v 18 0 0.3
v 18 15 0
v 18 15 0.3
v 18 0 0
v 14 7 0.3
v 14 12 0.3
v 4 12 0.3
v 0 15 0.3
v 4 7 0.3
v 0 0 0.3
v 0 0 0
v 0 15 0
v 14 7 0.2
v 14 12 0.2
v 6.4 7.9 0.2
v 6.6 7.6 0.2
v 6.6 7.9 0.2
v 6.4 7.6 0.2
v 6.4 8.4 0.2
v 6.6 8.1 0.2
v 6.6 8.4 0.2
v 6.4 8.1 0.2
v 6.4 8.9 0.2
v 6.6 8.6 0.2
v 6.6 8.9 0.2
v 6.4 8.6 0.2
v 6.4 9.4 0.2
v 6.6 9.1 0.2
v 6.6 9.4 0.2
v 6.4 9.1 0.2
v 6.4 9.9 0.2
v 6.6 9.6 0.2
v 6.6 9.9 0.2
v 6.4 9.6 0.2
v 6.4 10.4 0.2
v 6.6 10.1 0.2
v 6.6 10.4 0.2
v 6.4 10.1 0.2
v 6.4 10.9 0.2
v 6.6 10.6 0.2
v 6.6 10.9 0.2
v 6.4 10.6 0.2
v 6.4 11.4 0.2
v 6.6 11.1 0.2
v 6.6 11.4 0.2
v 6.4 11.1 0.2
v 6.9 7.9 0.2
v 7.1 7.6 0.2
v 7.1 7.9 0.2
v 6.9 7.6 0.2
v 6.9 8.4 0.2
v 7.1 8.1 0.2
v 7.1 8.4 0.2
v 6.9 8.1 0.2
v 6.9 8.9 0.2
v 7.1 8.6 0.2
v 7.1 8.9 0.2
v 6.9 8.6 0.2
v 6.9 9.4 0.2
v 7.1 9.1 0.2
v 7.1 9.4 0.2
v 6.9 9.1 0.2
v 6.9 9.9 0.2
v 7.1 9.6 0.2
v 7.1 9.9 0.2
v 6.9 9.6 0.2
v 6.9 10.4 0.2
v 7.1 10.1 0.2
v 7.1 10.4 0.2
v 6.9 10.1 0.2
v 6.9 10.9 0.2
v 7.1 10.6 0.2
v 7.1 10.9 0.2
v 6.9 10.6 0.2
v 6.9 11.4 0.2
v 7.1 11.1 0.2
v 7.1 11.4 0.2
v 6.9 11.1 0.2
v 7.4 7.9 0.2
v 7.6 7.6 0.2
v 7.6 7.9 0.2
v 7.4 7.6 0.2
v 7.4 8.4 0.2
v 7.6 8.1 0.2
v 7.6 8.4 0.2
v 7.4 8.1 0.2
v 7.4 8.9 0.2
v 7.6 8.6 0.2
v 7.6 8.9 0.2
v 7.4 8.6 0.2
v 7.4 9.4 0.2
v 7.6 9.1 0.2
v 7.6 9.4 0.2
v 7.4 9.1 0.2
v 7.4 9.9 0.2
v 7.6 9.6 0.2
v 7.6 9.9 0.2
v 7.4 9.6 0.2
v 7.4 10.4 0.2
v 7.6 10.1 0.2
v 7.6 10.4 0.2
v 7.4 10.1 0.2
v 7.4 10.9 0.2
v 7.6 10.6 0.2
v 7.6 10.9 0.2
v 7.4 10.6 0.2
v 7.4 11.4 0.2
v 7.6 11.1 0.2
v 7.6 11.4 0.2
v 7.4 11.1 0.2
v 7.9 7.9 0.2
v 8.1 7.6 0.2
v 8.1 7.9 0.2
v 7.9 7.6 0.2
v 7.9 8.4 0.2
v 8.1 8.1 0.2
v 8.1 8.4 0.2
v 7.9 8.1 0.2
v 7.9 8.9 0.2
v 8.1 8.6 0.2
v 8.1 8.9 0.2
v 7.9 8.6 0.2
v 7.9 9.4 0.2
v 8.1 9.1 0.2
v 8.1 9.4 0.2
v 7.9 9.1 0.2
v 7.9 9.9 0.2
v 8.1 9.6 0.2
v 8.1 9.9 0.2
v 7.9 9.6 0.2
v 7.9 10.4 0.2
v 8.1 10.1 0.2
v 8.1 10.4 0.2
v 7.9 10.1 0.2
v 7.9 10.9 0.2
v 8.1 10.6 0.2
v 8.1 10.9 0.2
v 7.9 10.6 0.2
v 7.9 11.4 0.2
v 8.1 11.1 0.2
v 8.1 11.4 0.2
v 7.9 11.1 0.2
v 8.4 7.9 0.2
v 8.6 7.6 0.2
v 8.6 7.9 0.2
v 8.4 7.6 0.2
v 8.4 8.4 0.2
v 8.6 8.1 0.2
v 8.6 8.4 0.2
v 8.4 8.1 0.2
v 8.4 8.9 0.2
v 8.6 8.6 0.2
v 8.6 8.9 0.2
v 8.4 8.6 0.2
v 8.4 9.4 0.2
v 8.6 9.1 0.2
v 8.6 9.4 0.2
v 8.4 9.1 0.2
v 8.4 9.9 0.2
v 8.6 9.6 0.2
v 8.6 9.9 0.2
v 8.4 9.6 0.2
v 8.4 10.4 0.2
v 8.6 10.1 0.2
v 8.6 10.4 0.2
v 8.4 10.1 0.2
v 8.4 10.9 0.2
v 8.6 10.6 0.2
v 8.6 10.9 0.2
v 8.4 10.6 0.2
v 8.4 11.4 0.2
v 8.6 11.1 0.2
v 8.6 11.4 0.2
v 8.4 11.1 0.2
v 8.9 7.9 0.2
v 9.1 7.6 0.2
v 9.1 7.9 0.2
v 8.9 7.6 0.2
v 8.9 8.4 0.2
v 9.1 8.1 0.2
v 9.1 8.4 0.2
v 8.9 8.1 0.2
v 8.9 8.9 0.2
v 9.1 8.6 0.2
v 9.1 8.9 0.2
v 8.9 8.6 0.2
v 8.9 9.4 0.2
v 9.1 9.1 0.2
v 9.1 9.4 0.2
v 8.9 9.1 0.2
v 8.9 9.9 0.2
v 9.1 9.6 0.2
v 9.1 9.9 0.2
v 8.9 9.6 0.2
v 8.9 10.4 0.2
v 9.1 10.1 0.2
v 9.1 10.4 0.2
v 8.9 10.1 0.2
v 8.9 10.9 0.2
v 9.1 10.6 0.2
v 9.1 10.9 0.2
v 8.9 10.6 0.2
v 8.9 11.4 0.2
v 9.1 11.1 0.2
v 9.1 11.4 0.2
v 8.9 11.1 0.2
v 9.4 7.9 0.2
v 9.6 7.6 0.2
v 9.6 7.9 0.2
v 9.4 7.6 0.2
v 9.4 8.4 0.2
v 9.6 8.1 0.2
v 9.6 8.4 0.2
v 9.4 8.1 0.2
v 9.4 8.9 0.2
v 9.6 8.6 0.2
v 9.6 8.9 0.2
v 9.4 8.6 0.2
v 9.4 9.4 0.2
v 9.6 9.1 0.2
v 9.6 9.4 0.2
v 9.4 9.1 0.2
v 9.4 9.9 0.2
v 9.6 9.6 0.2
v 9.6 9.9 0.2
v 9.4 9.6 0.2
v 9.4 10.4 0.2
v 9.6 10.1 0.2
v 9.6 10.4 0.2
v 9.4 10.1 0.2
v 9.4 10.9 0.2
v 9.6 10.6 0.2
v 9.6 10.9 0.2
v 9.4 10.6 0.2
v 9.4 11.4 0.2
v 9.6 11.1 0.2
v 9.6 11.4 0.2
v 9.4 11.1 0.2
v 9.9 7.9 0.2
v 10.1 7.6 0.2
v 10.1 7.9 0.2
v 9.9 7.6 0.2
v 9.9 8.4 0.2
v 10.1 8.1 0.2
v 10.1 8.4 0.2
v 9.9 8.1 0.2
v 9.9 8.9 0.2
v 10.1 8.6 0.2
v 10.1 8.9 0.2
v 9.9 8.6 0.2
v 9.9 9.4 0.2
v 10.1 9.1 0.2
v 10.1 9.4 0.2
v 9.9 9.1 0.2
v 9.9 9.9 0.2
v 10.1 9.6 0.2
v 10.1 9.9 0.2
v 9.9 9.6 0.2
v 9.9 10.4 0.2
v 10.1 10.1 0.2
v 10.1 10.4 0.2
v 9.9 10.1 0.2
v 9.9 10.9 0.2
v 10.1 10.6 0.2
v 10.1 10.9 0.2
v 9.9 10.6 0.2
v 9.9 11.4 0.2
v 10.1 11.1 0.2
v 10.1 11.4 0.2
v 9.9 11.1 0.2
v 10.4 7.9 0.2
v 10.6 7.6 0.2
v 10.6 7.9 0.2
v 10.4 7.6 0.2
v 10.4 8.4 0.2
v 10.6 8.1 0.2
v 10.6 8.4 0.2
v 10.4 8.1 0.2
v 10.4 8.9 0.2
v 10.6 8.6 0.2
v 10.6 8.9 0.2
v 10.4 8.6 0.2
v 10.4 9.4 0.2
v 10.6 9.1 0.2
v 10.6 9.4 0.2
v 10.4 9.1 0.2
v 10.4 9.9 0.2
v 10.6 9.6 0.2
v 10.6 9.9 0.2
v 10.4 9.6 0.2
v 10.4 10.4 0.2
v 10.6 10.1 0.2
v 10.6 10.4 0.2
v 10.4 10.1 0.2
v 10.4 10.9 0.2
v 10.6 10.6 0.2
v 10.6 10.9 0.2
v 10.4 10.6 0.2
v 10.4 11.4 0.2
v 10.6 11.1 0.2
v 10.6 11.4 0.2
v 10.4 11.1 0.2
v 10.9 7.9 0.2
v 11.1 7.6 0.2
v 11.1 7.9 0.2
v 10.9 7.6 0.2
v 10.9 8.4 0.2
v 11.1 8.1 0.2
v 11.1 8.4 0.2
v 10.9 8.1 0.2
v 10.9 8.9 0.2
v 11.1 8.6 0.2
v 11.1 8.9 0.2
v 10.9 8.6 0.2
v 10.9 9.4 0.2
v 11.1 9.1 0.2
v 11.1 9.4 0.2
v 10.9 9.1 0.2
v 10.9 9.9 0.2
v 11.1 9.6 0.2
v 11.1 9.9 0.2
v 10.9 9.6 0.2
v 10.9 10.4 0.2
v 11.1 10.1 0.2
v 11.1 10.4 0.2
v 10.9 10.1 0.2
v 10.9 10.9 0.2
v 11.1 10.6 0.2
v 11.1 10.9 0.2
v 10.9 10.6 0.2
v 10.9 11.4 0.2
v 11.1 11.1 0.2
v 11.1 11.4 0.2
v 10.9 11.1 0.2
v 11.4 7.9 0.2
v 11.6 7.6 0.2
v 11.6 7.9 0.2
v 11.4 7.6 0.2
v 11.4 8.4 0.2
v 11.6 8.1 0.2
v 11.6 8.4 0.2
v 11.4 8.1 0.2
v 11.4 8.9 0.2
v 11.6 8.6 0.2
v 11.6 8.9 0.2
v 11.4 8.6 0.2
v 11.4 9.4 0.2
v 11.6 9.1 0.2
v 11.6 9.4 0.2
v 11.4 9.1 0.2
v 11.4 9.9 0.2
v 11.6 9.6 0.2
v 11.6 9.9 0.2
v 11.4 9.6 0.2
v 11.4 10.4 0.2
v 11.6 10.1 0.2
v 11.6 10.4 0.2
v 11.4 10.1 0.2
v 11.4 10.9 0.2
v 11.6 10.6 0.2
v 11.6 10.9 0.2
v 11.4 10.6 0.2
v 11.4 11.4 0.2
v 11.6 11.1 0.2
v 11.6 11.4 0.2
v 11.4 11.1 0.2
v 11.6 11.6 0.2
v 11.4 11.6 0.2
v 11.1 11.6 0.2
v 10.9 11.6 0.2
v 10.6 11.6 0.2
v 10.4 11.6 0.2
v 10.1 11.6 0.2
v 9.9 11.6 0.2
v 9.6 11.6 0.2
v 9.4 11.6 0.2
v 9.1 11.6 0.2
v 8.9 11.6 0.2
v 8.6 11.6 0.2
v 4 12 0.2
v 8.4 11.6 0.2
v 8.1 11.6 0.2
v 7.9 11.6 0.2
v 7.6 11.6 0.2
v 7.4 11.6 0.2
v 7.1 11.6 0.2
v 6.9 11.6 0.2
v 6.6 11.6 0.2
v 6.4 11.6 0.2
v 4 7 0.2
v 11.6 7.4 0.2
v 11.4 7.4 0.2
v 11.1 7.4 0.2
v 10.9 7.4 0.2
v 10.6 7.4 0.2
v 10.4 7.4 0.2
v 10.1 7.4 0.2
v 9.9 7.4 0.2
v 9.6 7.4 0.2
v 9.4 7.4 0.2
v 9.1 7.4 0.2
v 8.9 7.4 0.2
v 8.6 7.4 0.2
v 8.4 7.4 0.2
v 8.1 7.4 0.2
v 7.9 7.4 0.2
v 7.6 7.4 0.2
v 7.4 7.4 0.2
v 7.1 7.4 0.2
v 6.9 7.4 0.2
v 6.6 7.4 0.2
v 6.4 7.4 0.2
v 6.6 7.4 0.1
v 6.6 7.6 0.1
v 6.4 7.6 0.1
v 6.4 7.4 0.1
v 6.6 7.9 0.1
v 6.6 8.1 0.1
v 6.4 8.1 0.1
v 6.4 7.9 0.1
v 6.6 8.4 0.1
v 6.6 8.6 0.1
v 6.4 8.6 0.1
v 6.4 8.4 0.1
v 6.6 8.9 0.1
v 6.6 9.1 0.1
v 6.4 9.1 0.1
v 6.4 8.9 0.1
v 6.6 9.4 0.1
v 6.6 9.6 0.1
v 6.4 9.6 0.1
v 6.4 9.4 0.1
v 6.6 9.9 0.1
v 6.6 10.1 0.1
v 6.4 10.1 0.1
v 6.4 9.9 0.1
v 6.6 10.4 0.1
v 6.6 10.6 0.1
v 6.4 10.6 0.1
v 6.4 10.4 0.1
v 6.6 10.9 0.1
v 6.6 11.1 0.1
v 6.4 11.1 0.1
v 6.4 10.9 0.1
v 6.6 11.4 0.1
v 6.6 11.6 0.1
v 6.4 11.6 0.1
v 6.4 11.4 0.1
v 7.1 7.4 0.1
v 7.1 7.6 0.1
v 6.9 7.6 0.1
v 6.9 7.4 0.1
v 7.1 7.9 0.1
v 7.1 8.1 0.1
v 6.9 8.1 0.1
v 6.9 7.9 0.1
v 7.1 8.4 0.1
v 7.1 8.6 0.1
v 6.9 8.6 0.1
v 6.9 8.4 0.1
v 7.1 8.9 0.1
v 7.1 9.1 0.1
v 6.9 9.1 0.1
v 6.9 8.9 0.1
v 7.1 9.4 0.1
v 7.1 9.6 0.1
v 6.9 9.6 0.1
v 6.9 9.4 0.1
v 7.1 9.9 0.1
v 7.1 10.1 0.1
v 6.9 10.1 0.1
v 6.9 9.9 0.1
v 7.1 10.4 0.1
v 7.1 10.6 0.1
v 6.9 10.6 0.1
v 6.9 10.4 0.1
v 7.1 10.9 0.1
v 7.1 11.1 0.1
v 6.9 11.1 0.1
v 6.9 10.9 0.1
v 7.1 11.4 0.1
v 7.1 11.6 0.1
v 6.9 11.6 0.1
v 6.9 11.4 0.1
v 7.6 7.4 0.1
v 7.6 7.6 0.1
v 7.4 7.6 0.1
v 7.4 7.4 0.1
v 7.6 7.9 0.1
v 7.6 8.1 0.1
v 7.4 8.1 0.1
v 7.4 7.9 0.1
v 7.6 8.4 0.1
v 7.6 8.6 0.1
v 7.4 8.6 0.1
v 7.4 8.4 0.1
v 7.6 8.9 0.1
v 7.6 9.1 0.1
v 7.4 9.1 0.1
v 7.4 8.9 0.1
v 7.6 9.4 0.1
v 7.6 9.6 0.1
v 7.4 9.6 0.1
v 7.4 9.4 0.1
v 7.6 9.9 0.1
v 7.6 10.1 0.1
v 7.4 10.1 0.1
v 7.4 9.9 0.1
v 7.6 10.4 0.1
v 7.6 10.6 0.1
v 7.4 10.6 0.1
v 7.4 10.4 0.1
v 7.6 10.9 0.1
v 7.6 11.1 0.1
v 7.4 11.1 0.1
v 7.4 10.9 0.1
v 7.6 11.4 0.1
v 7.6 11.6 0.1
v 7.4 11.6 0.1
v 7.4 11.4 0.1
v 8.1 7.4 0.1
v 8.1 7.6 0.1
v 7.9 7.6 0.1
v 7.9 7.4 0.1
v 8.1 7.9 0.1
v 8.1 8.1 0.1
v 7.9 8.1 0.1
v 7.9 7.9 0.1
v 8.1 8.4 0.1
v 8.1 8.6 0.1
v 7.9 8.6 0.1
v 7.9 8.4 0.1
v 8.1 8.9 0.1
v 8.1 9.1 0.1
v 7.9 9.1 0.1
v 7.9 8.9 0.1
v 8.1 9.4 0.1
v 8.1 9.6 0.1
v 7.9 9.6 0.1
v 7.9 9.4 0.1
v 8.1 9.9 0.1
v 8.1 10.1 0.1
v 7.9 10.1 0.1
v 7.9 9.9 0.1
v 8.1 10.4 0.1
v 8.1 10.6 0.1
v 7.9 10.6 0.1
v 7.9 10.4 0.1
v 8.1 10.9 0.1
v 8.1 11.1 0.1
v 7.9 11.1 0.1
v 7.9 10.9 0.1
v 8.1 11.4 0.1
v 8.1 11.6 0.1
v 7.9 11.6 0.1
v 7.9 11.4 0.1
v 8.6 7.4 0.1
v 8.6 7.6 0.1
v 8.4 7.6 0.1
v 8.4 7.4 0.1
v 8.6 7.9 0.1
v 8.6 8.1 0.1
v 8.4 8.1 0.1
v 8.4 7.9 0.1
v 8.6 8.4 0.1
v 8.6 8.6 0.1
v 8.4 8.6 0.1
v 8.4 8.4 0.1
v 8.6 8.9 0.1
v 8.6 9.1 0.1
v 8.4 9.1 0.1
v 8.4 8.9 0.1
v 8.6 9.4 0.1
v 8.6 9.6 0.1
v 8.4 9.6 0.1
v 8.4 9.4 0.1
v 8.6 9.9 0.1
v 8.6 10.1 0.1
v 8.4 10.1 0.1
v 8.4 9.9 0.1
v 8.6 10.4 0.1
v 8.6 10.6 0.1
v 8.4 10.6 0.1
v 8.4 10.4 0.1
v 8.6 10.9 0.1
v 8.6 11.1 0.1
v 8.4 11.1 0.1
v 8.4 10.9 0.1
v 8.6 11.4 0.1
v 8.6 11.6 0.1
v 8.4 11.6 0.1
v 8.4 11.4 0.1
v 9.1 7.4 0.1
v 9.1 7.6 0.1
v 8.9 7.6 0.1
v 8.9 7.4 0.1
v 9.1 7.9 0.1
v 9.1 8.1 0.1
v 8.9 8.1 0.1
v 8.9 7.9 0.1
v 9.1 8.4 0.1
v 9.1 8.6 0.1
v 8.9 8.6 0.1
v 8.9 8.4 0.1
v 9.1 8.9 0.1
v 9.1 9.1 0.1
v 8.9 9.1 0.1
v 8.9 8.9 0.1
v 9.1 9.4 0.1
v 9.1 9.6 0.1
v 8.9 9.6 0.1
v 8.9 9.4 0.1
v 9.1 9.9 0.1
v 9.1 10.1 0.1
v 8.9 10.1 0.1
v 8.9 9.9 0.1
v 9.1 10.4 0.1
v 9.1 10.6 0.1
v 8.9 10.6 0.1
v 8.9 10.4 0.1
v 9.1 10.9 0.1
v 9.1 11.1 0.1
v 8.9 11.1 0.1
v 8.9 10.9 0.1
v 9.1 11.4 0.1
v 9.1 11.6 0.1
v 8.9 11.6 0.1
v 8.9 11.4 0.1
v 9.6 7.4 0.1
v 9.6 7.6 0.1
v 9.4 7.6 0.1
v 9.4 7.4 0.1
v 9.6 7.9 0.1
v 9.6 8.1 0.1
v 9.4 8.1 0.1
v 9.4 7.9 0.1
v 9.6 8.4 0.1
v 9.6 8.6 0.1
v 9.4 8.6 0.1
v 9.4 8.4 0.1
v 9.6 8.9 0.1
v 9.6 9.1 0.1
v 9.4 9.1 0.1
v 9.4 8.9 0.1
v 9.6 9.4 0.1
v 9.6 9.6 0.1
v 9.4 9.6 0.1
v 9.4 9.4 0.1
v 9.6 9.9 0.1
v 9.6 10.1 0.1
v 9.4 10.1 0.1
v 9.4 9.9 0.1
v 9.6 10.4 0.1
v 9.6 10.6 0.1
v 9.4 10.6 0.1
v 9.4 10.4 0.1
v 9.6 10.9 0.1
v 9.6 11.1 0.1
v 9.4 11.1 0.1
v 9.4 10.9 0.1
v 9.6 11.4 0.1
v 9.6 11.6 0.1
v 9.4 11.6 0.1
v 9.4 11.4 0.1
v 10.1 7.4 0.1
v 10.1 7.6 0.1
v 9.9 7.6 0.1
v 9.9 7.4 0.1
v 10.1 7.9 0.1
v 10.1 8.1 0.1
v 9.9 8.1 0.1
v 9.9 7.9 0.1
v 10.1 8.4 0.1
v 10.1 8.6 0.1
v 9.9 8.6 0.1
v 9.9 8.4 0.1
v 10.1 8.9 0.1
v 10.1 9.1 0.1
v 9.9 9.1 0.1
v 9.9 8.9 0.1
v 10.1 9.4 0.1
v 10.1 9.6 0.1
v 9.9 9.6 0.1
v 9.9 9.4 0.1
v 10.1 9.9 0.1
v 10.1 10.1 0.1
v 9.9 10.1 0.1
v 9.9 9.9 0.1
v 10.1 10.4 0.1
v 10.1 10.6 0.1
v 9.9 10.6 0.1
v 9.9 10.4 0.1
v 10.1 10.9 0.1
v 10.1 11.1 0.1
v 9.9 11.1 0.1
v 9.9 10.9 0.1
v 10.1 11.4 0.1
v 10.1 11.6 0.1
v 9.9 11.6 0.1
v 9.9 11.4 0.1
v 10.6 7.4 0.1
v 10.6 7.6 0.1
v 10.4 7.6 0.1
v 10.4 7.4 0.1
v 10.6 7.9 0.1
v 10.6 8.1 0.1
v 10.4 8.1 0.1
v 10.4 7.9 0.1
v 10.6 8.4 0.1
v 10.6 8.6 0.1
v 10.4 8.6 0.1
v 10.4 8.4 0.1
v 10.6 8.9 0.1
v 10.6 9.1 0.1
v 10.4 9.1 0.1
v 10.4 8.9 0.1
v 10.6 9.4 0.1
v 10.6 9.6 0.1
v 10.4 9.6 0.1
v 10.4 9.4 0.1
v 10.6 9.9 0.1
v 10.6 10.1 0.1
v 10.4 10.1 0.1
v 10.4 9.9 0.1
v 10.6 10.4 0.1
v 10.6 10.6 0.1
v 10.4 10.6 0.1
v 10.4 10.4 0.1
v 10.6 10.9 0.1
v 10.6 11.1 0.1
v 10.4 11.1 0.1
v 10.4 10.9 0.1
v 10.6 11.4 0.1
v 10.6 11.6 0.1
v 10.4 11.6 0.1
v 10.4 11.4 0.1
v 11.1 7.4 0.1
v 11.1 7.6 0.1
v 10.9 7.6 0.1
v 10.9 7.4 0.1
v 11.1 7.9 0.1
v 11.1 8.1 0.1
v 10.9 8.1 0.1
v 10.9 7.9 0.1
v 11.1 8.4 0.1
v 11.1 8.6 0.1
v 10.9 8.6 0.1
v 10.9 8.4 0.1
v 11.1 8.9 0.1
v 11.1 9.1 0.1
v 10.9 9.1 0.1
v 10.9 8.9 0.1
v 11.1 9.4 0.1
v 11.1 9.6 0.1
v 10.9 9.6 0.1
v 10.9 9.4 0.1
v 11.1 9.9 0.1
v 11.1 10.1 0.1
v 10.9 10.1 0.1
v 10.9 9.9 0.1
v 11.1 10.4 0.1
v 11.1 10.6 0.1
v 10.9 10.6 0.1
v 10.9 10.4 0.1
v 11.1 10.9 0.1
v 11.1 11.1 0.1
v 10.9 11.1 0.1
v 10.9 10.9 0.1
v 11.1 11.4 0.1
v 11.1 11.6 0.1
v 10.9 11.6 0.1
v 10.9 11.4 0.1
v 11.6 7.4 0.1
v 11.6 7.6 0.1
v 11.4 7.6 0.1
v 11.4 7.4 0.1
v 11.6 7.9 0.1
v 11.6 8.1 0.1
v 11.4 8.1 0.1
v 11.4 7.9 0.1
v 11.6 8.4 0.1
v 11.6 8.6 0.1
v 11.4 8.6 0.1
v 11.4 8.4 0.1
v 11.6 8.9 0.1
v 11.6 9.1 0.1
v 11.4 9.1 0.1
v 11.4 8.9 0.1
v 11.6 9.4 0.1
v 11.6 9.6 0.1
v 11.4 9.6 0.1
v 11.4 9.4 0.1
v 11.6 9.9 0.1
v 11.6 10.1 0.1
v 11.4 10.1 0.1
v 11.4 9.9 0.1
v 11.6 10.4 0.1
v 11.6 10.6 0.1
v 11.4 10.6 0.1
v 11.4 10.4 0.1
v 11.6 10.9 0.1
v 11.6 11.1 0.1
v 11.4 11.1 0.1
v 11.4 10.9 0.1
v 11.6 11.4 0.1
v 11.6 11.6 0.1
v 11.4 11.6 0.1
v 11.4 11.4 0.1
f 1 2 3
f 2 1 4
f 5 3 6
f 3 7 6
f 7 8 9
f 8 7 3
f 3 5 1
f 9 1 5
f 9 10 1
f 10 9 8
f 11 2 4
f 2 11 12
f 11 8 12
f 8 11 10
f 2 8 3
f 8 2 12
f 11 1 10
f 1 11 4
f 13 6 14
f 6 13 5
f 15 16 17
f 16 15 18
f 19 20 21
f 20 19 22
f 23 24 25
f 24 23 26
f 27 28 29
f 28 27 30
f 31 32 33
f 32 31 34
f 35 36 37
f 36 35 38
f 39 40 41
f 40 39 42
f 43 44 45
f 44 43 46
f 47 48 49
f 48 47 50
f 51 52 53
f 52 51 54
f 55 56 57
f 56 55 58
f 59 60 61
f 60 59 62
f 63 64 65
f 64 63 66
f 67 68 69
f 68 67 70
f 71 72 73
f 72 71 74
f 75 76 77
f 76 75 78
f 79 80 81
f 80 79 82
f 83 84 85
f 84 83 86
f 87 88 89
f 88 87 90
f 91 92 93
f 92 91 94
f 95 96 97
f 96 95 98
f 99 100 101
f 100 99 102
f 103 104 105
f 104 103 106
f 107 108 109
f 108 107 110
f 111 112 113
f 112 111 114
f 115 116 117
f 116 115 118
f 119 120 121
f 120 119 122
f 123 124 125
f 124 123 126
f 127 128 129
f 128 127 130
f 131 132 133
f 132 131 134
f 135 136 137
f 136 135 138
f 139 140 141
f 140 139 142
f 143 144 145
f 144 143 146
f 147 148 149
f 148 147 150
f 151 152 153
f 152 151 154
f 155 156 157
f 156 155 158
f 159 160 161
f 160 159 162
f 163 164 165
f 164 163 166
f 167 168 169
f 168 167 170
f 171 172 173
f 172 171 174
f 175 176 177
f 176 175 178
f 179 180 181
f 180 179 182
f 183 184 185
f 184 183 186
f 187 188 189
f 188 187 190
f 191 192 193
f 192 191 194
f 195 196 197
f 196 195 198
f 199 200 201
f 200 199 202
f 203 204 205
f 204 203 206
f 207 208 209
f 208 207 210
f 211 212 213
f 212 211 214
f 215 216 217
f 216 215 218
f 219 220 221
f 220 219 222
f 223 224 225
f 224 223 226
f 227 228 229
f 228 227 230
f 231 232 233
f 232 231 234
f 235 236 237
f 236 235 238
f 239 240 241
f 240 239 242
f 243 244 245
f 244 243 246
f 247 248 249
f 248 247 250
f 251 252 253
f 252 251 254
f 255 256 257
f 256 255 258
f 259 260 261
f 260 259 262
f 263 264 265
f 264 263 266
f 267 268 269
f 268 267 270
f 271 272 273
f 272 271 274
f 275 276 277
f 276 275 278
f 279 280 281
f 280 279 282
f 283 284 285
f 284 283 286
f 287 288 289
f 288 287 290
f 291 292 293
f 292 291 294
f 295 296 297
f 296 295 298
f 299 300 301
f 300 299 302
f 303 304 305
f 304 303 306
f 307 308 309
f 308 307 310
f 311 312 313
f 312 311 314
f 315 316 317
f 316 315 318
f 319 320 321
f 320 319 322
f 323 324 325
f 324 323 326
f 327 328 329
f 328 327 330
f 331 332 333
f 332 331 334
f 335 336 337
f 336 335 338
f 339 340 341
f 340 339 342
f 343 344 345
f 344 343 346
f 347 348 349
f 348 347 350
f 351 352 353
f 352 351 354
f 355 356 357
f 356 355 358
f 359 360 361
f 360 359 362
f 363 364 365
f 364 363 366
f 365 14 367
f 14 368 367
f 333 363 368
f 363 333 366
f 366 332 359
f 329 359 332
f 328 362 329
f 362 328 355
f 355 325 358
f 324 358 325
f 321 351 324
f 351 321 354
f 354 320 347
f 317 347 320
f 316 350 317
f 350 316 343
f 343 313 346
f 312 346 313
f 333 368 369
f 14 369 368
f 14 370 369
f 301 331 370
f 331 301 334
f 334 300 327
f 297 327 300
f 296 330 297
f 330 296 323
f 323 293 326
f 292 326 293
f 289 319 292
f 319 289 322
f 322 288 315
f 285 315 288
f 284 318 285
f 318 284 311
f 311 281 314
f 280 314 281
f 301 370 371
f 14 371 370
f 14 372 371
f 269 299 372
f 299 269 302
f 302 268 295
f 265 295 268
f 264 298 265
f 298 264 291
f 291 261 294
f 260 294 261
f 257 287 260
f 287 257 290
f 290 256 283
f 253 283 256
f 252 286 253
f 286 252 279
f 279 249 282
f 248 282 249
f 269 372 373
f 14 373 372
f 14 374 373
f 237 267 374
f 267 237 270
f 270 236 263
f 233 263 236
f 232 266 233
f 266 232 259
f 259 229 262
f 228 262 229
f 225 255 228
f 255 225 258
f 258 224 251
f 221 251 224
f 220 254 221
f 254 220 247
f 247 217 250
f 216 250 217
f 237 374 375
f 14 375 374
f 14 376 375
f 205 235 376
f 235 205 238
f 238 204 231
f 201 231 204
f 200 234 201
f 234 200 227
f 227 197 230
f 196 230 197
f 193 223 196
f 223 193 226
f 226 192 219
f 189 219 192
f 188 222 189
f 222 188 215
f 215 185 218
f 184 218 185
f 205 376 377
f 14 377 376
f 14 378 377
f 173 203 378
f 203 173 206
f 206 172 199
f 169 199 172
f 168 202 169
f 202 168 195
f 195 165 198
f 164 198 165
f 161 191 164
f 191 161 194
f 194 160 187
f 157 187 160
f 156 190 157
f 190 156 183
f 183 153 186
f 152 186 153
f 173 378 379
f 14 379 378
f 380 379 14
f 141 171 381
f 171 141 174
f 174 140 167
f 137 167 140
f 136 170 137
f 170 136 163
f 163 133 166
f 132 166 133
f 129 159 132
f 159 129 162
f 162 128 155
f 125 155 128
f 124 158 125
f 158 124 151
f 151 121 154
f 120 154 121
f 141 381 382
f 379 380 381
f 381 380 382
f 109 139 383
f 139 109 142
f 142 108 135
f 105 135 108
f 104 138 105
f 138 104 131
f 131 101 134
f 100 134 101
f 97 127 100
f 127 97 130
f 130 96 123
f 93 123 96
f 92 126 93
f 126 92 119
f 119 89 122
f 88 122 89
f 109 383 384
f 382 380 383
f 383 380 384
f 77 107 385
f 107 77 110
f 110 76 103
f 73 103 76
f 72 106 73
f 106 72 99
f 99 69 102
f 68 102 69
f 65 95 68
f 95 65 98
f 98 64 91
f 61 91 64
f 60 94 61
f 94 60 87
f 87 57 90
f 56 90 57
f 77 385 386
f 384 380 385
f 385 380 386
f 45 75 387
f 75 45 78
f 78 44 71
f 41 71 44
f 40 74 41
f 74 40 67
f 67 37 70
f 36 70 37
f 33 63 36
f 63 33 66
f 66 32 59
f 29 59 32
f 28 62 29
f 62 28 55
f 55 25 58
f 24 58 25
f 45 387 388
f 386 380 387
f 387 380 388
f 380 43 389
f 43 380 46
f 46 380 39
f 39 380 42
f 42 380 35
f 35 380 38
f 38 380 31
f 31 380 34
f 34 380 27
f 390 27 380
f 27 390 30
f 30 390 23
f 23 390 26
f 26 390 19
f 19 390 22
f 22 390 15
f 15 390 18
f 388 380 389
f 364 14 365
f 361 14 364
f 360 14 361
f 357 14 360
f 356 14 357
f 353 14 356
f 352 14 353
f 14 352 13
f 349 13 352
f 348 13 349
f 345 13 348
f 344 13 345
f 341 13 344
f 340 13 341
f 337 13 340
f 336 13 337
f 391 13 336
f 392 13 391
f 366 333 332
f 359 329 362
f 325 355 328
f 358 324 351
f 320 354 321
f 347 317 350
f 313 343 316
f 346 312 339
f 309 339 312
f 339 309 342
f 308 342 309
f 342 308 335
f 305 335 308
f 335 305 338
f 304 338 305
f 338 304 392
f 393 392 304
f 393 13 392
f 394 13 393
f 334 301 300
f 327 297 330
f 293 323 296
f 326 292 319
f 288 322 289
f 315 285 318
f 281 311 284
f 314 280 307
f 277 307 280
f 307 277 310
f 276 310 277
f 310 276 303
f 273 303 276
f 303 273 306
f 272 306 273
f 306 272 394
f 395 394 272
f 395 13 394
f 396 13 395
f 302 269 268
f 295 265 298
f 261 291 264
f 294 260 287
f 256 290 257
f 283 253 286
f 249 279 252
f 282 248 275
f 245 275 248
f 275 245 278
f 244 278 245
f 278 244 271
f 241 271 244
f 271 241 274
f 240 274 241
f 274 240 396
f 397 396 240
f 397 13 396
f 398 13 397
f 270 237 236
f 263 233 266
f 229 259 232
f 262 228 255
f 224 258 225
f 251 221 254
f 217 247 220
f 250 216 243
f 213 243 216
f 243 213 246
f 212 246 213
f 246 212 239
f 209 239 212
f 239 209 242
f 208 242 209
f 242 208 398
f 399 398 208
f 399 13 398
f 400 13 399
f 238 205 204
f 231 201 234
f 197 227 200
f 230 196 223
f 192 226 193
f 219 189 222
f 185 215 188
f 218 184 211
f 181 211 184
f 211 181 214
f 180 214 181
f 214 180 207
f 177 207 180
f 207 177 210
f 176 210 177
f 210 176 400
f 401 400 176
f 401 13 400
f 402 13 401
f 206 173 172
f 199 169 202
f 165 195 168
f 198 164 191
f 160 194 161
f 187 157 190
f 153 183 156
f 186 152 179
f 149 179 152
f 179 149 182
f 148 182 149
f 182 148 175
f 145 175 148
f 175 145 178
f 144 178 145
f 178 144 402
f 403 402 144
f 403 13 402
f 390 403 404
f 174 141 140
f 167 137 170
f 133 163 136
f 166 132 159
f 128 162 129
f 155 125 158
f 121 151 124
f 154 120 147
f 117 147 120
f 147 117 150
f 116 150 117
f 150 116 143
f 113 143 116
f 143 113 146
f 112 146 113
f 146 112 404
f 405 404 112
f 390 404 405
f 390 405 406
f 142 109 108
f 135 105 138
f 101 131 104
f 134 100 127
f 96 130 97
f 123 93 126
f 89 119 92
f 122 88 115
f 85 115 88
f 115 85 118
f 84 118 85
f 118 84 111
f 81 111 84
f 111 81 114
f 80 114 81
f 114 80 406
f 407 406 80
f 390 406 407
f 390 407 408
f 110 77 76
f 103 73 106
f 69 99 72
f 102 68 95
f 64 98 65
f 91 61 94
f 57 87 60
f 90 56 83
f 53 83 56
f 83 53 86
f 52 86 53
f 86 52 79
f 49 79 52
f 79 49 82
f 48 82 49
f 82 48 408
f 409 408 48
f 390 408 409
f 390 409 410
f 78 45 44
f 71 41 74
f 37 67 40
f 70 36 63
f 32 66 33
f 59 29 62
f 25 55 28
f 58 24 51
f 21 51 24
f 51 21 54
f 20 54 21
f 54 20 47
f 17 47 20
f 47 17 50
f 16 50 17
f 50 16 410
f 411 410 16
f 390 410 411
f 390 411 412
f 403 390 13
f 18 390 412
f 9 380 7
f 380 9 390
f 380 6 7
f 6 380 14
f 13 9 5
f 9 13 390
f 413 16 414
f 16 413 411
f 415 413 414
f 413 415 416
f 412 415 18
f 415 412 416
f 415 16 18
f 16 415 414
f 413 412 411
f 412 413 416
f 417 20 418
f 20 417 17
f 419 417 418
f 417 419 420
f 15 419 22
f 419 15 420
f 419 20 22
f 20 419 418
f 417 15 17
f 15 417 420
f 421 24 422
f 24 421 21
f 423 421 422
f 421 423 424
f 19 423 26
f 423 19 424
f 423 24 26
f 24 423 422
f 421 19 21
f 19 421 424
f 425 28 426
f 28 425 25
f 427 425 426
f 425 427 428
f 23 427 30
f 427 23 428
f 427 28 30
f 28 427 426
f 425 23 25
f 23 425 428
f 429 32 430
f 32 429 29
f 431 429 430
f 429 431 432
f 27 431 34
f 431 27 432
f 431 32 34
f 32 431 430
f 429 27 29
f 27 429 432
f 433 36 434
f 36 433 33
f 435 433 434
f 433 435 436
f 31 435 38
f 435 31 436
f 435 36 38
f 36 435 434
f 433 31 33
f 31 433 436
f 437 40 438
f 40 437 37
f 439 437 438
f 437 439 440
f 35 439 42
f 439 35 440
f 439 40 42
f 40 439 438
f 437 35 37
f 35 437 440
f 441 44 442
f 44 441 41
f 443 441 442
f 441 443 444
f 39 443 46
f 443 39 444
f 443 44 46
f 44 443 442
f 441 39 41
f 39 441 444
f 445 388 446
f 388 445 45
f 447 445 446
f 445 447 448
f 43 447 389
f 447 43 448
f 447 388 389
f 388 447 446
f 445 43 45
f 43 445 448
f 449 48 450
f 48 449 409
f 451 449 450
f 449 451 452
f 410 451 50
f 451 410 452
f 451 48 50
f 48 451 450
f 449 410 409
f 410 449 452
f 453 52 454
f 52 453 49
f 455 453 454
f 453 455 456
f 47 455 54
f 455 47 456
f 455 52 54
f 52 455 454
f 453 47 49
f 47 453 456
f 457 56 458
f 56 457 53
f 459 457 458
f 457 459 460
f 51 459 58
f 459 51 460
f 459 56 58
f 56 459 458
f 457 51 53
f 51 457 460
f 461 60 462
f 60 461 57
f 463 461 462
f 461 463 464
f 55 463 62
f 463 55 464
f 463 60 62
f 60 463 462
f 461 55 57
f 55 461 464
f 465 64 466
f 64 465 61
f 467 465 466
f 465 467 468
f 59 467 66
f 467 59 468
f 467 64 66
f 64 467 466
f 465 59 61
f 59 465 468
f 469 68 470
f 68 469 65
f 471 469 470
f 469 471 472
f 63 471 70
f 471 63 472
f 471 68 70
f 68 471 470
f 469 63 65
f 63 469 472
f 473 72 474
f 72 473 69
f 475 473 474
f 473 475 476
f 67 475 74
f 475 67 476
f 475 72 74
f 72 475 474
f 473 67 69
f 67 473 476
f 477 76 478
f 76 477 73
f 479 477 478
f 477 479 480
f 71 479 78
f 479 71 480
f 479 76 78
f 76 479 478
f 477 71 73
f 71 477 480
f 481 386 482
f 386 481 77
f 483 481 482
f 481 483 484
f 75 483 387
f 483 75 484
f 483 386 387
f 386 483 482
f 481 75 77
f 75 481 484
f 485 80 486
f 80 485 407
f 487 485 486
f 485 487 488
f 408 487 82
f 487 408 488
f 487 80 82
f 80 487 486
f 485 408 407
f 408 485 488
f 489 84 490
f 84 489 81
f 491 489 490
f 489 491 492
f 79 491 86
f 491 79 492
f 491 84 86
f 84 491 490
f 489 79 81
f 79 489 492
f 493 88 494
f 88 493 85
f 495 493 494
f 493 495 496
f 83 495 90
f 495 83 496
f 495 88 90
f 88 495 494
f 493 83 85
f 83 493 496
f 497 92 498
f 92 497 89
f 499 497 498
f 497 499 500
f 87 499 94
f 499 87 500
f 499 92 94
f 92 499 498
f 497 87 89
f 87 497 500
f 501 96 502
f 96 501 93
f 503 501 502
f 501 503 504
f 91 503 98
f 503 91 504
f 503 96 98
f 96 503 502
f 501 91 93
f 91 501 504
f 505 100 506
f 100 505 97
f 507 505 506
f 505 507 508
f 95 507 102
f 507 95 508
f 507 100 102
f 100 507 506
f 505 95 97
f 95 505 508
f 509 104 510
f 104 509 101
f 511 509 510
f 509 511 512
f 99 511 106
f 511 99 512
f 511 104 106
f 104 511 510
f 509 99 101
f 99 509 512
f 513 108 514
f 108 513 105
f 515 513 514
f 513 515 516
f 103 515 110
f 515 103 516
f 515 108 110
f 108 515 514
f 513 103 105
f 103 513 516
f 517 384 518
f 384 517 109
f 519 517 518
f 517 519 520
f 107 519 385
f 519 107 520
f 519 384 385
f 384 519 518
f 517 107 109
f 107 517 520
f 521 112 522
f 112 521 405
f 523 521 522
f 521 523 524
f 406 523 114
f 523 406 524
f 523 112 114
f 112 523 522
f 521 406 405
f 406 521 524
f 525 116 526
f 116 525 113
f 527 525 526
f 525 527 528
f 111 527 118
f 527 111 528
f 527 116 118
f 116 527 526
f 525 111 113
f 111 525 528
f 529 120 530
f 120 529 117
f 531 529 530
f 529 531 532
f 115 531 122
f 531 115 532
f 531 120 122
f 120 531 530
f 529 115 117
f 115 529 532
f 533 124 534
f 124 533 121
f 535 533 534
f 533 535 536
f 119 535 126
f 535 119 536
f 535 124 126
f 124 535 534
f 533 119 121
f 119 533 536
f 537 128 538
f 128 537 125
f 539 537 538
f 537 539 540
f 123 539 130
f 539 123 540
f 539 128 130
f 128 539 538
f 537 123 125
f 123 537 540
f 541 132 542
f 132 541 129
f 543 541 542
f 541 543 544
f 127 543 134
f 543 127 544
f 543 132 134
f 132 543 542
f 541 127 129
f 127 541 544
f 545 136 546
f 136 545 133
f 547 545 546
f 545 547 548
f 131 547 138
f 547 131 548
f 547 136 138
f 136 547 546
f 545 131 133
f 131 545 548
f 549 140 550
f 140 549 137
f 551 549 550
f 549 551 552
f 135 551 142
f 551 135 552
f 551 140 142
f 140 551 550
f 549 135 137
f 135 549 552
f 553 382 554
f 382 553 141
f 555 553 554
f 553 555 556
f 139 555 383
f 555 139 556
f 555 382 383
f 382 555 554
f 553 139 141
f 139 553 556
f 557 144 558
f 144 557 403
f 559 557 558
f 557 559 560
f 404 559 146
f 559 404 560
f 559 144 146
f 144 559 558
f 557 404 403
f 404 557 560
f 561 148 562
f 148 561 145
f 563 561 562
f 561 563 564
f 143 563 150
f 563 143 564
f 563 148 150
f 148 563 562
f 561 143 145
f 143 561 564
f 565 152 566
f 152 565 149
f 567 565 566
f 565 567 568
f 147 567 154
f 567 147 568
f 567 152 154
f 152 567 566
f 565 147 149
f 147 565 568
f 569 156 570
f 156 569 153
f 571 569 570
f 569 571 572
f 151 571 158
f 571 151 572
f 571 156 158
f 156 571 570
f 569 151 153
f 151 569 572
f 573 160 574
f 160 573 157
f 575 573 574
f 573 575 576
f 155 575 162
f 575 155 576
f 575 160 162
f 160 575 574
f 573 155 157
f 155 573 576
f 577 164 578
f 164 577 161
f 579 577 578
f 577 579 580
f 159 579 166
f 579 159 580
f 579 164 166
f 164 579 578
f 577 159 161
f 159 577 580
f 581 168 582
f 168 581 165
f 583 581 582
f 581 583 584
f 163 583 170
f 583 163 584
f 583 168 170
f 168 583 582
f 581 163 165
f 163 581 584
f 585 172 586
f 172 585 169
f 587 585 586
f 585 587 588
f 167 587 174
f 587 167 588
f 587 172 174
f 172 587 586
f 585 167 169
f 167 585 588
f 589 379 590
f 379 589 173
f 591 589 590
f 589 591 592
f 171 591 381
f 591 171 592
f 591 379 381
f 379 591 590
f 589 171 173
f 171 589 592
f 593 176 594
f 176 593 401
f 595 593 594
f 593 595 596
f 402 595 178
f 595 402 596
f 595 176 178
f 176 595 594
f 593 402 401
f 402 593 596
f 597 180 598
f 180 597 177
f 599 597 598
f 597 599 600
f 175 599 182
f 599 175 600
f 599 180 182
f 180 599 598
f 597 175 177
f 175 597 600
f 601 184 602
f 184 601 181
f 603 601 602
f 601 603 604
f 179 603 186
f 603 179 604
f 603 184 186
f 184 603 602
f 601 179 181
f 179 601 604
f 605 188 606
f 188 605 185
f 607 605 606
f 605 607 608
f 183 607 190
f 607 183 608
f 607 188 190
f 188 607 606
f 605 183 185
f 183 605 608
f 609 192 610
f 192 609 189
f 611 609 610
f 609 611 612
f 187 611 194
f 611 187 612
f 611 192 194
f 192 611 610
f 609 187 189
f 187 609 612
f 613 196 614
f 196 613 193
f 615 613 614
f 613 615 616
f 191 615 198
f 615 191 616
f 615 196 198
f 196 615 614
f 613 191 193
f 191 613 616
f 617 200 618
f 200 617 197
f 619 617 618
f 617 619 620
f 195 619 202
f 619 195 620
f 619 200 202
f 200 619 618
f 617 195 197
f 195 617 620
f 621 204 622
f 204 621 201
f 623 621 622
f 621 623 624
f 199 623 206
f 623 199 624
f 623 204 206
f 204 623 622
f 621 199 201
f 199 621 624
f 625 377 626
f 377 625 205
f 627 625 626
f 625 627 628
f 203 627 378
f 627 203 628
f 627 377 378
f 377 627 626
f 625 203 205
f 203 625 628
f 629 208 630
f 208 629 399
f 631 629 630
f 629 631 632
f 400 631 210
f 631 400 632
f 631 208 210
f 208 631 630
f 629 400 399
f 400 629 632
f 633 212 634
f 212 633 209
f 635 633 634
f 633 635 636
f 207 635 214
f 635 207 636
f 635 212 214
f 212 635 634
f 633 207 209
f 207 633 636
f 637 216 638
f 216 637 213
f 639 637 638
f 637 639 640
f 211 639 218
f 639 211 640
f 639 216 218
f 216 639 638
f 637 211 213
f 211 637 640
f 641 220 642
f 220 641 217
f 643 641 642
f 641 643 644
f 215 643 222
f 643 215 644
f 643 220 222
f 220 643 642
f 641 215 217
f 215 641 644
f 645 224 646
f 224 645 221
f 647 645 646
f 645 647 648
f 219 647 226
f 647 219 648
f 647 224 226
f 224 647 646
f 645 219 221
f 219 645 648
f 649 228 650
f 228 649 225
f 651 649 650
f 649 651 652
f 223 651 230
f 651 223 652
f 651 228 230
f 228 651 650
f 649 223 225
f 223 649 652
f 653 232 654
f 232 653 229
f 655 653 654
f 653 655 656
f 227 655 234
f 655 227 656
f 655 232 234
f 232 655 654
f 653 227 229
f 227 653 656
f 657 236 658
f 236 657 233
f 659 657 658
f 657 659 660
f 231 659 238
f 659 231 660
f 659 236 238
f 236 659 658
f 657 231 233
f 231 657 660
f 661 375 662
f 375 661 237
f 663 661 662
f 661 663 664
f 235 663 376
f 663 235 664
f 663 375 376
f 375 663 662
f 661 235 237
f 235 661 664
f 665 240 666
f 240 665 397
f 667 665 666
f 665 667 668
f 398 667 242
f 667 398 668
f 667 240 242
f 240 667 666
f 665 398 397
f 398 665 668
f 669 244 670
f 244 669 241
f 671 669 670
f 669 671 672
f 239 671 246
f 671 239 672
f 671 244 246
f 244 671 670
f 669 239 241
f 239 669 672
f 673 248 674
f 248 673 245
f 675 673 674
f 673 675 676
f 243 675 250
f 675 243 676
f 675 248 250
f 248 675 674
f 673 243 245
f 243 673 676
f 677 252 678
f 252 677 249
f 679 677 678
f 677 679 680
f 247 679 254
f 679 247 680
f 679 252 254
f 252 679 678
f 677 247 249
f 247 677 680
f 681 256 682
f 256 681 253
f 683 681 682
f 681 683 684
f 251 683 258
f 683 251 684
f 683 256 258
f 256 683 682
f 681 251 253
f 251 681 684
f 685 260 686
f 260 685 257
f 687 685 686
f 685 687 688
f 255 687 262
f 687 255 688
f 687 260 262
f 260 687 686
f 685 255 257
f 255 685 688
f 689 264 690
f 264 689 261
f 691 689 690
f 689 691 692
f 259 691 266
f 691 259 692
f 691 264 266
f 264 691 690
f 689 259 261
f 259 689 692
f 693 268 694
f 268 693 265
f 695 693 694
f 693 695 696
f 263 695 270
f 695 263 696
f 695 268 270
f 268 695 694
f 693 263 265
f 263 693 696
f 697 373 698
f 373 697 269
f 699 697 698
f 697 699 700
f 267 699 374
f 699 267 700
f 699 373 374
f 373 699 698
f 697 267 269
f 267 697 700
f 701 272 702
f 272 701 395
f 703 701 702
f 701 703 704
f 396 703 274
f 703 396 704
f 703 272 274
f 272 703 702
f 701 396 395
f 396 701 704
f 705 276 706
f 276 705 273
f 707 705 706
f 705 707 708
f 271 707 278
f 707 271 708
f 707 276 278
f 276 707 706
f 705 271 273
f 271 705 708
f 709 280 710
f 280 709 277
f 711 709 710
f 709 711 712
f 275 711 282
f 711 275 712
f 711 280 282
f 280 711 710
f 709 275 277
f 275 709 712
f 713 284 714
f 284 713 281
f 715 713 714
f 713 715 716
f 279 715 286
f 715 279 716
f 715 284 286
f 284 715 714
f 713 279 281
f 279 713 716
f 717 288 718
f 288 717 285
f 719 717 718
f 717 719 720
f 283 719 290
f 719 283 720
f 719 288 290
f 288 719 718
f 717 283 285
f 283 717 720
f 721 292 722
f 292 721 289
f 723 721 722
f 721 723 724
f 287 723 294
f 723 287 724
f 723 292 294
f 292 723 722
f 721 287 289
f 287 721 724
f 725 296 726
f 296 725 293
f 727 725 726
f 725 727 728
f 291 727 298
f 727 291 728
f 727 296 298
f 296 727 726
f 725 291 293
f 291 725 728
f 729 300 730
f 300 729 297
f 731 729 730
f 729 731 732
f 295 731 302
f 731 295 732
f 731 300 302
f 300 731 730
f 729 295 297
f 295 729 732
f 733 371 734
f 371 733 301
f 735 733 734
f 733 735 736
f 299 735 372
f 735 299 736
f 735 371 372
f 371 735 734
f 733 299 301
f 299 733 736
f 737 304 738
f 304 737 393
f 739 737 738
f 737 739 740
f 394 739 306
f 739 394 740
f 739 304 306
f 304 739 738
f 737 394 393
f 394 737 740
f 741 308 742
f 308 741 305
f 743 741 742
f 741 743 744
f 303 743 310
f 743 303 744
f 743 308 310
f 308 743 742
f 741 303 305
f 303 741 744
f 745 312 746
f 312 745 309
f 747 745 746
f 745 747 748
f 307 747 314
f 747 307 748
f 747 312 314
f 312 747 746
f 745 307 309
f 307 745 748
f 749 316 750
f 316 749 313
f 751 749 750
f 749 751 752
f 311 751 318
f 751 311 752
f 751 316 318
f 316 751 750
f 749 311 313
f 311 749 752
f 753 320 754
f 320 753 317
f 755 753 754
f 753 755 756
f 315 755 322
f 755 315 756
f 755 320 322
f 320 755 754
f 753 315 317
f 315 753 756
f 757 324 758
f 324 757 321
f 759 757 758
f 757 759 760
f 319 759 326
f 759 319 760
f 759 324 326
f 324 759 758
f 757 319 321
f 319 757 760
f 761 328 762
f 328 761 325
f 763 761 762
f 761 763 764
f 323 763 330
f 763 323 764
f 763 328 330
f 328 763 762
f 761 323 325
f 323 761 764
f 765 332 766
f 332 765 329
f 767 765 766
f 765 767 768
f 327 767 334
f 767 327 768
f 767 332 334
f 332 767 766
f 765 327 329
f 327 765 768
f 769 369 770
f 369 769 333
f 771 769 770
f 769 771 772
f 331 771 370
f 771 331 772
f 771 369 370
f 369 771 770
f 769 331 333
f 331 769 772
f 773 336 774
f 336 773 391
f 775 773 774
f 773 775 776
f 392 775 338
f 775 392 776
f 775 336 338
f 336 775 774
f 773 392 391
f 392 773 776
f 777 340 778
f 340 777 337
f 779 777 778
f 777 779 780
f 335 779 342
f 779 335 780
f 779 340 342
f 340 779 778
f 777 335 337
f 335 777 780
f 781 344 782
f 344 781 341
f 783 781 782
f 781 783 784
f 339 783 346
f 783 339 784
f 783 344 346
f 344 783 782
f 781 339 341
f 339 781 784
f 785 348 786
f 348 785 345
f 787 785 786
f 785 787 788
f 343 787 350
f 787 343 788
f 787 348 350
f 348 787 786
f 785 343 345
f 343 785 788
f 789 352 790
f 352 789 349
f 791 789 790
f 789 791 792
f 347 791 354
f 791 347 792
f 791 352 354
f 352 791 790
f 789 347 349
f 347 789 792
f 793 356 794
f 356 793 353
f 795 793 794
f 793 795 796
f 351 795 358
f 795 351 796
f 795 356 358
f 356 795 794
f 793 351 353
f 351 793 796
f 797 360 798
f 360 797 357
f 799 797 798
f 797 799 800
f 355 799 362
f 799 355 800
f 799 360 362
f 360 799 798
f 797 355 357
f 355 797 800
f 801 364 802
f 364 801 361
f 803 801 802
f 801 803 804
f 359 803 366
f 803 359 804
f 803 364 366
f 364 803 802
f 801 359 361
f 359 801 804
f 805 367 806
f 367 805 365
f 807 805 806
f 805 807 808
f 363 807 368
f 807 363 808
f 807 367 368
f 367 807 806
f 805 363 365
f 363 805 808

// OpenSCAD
plate_size = [18, 15, 0.3];
mold_size = [10, 5, 0.2];
mold_coord = [4, 7, 0.2];

bump_size = 0.2;
bump_spacing = 0.5;
base = [6, 7, 0.2];

difference() {
    
    difference() {
        cube(plate_size);
        translate(mold_coord)
            cube(mold_size);
    };

    for (i=[1:1:11]) {
        for (j=[1:1:9]) {
            translate(base + [i * bump_spacing, j * bump_spacing, 0])
                cube(bump_size, center = true);
        }
    };
}
